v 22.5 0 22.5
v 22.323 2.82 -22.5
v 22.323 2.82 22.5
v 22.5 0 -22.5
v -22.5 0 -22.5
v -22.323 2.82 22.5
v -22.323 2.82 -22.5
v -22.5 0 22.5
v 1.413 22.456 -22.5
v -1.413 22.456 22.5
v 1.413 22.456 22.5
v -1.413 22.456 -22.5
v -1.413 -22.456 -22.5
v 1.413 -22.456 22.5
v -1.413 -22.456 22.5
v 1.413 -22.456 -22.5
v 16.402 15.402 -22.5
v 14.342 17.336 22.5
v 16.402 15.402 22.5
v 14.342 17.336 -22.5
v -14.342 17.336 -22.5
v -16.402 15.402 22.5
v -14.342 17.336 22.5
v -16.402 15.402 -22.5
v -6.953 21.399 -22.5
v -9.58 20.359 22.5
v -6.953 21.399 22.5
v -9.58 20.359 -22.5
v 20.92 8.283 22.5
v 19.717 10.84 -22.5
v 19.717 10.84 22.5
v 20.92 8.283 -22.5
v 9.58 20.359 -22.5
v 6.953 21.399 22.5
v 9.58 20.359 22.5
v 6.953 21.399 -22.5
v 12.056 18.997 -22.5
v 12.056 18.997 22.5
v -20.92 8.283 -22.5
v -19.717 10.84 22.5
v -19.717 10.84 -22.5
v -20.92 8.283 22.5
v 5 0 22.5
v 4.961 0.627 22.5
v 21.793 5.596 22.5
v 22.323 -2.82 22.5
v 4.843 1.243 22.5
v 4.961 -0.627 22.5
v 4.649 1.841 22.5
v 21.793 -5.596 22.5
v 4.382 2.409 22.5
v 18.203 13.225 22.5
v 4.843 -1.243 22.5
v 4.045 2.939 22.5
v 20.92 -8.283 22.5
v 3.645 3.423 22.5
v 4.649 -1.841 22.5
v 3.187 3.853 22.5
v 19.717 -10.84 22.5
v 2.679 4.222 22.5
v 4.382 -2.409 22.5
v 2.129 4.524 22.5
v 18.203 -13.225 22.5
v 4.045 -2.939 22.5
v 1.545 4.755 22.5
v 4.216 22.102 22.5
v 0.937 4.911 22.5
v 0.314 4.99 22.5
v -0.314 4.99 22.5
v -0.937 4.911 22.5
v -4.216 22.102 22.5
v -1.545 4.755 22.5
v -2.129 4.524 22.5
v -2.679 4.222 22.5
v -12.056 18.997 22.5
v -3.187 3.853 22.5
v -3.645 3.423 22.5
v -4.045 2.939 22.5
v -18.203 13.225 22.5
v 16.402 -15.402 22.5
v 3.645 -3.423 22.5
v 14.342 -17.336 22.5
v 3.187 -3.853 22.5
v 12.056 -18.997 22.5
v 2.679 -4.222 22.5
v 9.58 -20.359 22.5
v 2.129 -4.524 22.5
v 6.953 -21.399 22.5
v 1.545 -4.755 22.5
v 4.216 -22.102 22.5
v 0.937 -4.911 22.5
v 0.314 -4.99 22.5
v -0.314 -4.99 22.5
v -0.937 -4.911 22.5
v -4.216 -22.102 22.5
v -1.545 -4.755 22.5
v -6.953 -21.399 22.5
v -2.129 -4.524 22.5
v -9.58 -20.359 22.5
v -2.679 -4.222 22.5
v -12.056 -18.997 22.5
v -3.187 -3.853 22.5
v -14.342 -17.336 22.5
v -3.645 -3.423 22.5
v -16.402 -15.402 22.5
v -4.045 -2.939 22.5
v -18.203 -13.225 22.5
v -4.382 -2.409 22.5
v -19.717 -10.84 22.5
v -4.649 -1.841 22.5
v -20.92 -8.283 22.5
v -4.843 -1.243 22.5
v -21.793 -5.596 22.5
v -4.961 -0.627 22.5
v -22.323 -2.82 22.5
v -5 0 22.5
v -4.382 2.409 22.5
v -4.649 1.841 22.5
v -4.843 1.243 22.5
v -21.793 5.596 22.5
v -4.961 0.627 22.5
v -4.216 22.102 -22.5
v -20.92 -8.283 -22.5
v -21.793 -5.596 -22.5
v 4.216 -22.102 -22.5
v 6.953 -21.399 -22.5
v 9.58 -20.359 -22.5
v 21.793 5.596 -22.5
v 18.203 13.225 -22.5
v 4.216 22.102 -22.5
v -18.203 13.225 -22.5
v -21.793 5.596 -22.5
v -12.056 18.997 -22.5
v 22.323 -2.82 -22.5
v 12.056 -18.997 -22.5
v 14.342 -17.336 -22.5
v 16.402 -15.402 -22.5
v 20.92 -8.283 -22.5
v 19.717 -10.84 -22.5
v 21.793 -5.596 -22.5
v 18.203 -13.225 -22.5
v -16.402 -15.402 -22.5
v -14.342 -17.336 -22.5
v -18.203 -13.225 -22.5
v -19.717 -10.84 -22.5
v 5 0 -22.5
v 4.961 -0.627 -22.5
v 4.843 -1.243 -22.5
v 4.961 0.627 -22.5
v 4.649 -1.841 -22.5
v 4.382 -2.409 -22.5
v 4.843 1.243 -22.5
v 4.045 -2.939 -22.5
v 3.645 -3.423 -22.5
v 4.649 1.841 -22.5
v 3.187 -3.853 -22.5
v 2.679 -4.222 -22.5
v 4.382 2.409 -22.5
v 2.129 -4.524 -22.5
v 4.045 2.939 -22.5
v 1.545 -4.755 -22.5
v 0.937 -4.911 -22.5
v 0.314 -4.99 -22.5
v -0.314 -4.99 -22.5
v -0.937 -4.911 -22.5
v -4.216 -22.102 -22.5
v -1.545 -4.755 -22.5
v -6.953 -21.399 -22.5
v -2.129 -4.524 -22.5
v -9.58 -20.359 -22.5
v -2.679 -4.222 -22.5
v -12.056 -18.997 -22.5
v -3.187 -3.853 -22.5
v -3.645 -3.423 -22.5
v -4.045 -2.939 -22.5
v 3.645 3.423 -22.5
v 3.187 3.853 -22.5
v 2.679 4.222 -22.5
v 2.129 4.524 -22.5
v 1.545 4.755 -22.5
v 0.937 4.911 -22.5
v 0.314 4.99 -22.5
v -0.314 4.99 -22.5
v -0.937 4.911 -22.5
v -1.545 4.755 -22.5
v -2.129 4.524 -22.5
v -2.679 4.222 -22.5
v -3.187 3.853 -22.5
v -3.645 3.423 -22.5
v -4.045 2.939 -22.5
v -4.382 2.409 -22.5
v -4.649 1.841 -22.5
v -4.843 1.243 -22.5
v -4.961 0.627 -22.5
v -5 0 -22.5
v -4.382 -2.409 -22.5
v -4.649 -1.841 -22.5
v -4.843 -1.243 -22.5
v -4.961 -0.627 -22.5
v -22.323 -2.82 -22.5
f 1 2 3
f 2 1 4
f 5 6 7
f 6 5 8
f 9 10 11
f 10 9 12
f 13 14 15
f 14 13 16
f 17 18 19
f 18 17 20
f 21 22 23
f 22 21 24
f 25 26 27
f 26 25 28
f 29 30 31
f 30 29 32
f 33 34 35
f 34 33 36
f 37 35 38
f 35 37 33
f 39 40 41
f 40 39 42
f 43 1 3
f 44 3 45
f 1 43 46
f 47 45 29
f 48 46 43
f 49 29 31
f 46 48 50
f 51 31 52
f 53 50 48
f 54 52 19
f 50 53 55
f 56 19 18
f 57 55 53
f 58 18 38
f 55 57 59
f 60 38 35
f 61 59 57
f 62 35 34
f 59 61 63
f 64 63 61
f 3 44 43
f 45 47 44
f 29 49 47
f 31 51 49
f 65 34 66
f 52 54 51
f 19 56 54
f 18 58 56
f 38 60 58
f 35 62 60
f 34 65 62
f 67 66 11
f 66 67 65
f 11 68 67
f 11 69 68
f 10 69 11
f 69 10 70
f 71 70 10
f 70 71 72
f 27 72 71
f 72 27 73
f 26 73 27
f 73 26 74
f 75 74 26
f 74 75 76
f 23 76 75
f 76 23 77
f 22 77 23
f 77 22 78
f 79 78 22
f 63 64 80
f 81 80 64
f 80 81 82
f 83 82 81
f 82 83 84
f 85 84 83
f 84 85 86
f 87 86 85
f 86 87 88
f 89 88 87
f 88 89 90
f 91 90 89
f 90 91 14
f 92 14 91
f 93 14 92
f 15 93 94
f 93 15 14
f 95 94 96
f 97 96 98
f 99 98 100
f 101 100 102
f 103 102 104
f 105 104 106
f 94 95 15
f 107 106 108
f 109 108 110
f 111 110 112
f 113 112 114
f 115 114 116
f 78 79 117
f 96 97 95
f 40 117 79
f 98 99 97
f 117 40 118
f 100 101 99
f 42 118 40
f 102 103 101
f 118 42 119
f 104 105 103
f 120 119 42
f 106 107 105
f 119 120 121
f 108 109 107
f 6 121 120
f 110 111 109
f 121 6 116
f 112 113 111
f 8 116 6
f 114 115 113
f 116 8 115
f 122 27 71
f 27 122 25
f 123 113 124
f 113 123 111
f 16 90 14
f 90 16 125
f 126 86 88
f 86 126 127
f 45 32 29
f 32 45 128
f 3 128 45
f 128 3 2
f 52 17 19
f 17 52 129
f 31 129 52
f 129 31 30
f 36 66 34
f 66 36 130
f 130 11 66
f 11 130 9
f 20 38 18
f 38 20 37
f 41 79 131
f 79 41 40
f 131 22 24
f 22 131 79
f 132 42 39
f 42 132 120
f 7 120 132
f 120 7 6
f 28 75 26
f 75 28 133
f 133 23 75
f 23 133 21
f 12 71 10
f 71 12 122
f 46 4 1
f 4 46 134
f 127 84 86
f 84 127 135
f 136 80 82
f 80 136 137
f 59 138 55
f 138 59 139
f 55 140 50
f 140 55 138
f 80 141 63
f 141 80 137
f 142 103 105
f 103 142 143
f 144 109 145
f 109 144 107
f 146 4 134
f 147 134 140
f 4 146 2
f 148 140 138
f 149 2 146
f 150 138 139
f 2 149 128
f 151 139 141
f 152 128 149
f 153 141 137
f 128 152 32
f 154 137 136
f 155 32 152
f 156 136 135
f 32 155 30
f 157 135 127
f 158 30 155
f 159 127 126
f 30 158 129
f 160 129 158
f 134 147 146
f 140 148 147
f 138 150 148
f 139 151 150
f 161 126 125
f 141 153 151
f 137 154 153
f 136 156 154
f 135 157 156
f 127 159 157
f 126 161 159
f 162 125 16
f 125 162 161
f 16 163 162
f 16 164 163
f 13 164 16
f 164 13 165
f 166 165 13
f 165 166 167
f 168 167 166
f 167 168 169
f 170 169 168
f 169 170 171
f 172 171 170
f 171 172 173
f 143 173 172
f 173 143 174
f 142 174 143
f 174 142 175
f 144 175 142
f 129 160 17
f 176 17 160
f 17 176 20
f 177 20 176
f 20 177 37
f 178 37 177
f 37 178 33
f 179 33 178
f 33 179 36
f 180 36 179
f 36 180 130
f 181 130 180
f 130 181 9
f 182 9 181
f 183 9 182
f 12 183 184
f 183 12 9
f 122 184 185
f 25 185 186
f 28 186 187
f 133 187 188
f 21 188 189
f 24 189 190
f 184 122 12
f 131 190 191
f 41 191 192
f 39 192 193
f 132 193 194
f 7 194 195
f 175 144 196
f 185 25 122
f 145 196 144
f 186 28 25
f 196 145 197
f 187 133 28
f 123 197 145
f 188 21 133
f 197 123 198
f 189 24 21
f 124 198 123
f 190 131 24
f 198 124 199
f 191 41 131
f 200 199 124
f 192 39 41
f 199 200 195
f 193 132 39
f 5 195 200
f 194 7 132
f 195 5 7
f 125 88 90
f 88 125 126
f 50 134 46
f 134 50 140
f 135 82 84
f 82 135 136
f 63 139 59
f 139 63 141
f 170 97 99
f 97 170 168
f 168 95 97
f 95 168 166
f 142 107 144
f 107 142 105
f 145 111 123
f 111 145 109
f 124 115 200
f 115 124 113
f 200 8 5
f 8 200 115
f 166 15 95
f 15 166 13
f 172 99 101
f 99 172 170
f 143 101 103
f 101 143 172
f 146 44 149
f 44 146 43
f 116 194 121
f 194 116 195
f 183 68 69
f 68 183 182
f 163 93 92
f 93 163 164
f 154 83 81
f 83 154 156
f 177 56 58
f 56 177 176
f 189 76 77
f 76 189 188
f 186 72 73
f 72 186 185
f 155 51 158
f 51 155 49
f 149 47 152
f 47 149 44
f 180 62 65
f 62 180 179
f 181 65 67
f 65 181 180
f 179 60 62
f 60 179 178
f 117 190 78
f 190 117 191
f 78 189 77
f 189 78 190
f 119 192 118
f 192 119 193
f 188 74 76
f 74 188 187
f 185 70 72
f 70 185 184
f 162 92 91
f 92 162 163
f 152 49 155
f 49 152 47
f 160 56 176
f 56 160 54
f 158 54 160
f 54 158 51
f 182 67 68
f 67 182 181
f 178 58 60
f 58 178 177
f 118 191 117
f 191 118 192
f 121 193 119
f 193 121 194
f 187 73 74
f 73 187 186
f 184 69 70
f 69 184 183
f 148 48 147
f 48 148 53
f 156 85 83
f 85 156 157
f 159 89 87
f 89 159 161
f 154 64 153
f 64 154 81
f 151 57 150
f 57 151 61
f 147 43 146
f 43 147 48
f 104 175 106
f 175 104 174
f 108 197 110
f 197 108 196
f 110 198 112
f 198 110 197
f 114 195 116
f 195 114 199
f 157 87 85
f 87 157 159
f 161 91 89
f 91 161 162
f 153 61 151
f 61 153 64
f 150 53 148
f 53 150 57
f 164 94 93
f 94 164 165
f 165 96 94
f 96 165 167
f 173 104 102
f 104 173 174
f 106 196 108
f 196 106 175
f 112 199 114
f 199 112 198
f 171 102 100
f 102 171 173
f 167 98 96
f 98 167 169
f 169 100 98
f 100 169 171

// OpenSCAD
$fn = 50;


difference() {
	union() {
		translate(v = [0, 0, -22.5000000000]) {
			cylinder(h = 45, r = 22.5000000000);
		}
	}
	union() {
		translate(v = [0, 0, -100.0000000000]) {
			cylinder(h = 200, r = 5);
		}
	}
}
